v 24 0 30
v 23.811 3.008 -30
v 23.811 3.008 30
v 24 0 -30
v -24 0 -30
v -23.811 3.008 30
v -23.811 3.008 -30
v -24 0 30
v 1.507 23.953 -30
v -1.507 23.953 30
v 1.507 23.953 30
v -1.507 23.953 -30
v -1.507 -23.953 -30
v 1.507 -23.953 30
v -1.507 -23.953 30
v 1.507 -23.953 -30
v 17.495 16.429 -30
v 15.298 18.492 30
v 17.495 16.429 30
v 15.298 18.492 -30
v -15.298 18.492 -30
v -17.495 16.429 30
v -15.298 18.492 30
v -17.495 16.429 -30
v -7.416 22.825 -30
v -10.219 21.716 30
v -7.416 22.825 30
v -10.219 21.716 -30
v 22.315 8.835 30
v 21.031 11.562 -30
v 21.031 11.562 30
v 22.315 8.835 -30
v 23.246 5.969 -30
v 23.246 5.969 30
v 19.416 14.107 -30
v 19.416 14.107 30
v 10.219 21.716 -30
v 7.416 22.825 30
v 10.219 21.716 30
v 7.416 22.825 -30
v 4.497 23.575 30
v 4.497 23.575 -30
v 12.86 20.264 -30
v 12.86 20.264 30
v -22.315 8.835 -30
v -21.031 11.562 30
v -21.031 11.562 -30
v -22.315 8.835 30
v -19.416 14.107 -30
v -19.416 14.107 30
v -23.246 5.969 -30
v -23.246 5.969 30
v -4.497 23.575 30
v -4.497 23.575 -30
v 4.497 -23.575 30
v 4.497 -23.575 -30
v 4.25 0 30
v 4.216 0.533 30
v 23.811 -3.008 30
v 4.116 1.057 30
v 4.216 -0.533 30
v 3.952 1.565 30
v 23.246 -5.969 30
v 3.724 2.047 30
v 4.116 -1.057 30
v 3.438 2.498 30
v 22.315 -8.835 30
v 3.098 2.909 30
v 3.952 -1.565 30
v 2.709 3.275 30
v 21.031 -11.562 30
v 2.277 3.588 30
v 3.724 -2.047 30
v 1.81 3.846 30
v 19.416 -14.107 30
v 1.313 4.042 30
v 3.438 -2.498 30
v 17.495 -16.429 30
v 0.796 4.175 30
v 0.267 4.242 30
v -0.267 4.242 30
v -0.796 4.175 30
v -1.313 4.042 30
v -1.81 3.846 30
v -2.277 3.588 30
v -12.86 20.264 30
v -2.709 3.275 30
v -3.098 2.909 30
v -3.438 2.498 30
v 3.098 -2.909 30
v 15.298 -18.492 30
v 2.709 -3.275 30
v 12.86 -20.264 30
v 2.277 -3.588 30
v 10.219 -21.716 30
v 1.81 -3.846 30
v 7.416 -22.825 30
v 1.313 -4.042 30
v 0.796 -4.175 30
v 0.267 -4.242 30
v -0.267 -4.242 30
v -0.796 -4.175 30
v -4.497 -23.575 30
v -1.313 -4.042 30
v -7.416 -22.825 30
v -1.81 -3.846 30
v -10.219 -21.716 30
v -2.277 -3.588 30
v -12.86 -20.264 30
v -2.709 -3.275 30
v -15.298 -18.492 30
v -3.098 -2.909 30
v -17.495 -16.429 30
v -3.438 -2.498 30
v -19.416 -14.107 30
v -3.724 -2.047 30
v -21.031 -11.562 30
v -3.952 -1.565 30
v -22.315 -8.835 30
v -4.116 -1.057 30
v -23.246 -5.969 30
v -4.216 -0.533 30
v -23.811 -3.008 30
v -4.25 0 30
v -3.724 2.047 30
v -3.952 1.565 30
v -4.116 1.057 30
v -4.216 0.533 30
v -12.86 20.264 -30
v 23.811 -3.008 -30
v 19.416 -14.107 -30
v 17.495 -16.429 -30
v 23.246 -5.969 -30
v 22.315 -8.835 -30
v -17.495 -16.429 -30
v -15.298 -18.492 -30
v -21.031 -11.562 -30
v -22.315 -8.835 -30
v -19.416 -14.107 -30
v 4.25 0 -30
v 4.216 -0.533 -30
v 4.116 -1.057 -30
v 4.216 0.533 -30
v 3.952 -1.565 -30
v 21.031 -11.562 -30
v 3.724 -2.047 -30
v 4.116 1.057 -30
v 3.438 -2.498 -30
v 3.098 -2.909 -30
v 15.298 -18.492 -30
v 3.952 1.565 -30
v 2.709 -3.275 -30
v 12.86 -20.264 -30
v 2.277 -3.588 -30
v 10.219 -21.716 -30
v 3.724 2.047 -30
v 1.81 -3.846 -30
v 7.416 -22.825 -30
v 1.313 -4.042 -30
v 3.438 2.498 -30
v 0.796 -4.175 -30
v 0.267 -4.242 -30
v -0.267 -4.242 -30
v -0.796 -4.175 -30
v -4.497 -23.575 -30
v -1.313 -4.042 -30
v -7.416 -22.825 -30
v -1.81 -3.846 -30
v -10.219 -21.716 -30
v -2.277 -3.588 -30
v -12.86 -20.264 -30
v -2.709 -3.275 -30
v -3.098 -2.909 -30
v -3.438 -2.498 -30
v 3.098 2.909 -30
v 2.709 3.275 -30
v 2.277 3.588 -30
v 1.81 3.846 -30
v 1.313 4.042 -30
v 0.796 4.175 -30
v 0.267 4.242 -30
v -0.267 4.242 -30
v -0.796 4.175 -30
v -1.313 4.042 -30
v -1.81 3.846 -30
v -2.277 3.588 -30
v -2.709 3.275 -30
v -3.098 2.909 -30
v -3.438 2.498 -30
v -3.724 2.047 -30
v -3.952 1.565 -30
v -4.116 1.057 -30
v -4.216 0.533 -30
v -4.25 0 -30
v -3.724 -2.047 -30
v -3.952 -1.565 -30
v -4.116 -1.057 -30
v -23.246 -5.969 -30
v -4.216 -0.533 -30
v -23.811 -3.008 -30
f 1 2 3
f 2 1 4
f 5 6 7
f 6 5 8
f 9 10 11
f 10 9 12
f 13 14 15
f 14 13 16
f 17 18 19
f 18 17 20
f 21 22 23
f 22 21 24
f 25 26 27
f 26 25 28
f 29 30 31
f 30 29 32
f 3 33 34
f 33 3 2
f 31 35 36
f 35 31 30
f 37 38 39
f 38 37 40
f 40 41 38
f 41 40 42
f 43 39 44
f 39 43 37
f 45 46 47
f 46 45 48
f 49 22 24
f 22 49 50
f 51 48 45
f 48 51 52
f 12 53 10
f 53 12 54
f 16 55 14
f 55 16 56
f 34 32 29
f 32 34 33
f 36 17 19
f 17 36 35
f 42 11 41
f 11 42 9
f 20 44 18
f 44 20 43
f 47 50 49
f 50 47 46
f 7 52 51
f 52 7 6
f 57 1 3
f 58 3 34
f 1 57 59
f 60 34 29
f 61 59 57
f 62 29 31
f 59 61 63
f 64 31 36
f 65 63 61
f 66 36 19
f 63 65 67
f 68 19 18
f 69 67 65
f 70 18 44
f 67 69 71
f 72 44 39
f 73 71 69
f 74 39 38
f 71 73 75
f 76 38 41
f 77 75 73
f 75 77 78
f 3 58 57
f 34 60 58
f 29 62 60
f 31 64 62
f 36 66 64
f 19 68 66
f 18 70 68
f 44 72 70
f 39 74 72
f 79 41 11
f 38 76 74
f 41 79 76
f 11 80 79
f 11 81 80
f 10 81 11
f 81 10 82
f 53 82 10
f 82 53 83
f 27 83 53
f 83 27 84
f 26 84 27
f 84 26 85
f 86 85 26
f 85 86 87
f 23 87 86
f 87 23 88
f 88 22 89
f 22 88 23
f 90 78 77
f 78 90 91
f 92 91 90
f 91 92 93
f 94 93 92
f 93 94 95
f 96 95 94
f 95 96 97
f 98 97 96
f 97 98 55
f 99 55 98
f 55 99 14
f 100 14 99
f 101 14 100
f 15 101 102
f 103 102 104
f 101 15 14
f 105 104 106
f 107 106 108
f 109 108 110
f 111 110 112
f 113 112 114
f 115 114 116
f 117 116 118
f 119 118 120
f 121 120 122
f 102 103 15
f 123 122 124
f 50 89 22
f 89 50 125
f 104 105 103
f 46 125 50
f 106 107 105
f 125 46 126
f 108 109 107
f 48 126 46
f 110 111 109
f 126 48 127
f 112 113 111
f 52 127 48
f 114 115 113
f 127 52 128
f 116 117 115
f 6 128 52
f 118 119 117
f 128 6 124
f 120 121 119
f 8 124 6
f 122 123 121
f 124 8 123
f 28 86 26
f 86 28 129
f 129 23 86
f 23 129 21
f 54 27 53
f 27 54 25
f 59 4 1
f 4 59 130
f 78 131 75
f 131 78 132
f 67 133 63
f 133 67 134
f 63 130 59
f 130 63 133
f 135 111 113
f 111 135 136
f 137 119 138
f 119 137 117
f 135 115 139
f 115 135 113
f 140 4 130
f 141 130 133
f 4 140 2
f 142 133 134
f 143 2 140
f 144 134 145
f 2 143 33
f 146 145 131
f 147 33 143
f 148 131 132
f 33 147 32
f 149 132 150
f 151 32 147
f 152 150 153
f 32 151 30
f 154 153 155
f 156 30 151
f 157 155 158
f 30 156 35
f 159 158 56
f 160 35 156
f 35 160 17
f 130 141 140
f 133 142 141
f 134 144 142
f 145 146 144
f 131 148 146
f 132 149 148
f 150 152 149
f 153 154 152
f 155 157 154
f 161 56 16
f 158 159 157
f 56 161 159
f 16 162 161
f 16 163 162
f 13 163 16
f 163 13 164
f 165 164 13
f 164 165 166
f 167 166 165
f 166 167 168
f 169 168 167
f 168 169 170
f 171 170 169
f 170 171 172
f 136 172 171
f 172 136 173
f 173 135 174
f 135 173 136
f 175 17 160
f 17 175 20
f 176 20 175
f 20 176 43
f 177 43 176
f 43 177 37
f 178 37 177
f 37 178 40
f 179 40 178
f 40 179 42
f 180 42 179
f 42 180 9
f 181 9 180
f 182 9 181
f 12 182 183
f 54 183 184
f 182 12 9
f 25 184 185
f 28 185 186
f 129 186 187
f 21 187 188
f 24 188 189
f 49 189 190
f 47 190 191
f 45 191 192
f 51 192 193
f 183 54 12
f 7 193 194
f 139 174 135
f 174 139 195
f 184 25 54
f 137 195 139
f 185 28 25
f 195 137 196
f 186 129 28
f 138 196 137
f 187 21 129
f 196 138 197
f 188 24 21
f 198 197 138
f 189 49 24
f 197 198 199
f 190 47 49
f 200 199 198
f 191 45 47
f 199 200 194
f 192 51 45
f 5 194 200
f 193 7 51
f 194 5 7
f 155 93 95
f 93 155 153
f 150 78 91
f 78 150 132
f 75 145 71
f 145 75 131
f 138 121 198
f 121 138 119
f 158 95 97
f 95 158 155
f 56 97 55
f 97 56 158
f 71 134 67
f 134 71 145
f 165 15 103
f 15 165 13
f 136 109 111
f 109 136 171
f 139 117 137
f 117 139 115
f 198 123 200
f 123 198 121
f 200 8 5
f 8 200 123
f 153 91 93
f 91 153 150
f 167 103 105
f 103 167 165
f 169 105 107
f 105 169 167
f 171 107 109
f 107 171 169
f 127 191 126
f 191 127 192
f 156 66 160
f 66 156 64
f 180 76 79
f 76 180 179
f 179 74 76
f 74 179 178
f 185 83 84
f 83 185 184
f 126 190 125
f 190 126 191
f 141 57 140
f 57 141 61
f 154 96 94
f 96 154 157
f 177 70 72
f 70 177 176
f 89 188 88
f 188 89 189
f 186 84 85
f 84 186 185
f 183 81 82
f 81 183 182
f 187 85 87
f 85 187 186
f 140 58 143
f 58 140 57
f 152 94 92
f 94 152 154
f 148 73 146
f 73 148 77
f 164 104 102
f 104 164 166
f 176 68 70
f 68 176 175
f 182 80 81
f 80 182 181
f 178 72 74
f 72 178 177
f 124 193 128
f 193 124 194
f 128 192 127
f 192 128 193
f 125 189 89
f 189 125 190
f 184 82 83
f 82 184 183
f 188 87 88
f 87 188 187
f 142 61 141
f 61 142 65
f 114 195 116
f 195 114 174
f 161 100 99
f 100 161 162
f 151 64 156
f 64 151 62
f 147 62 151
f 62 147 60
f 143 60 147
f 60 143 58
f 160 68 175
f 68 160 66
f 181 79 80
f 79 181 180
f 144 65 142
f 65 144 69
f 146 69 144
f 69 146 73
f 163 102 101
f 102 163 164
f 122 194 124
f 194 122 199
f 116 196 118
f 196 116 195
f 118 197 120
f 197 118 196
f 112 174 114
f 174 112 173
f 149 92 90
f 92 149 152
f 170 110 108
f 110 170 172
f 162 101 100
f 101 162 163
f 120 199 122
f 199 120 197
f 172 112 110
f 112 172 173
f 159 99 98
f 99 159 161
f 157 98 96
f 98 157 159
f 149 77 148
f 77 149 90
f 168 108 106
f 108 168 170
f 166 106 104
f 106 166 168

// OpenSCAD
$fn = 50;


difference() {
	union() {
		translate(v = [0, 0, -30.0000000000]) {
			cylinder(h = 60, r = 24.0000000000);
		}
	}
	union() {
		translate(v = [0, 0, -100.0000000000]) {
			cylinder(h = 200, r = 4.2500000000);
		}
	}
}
